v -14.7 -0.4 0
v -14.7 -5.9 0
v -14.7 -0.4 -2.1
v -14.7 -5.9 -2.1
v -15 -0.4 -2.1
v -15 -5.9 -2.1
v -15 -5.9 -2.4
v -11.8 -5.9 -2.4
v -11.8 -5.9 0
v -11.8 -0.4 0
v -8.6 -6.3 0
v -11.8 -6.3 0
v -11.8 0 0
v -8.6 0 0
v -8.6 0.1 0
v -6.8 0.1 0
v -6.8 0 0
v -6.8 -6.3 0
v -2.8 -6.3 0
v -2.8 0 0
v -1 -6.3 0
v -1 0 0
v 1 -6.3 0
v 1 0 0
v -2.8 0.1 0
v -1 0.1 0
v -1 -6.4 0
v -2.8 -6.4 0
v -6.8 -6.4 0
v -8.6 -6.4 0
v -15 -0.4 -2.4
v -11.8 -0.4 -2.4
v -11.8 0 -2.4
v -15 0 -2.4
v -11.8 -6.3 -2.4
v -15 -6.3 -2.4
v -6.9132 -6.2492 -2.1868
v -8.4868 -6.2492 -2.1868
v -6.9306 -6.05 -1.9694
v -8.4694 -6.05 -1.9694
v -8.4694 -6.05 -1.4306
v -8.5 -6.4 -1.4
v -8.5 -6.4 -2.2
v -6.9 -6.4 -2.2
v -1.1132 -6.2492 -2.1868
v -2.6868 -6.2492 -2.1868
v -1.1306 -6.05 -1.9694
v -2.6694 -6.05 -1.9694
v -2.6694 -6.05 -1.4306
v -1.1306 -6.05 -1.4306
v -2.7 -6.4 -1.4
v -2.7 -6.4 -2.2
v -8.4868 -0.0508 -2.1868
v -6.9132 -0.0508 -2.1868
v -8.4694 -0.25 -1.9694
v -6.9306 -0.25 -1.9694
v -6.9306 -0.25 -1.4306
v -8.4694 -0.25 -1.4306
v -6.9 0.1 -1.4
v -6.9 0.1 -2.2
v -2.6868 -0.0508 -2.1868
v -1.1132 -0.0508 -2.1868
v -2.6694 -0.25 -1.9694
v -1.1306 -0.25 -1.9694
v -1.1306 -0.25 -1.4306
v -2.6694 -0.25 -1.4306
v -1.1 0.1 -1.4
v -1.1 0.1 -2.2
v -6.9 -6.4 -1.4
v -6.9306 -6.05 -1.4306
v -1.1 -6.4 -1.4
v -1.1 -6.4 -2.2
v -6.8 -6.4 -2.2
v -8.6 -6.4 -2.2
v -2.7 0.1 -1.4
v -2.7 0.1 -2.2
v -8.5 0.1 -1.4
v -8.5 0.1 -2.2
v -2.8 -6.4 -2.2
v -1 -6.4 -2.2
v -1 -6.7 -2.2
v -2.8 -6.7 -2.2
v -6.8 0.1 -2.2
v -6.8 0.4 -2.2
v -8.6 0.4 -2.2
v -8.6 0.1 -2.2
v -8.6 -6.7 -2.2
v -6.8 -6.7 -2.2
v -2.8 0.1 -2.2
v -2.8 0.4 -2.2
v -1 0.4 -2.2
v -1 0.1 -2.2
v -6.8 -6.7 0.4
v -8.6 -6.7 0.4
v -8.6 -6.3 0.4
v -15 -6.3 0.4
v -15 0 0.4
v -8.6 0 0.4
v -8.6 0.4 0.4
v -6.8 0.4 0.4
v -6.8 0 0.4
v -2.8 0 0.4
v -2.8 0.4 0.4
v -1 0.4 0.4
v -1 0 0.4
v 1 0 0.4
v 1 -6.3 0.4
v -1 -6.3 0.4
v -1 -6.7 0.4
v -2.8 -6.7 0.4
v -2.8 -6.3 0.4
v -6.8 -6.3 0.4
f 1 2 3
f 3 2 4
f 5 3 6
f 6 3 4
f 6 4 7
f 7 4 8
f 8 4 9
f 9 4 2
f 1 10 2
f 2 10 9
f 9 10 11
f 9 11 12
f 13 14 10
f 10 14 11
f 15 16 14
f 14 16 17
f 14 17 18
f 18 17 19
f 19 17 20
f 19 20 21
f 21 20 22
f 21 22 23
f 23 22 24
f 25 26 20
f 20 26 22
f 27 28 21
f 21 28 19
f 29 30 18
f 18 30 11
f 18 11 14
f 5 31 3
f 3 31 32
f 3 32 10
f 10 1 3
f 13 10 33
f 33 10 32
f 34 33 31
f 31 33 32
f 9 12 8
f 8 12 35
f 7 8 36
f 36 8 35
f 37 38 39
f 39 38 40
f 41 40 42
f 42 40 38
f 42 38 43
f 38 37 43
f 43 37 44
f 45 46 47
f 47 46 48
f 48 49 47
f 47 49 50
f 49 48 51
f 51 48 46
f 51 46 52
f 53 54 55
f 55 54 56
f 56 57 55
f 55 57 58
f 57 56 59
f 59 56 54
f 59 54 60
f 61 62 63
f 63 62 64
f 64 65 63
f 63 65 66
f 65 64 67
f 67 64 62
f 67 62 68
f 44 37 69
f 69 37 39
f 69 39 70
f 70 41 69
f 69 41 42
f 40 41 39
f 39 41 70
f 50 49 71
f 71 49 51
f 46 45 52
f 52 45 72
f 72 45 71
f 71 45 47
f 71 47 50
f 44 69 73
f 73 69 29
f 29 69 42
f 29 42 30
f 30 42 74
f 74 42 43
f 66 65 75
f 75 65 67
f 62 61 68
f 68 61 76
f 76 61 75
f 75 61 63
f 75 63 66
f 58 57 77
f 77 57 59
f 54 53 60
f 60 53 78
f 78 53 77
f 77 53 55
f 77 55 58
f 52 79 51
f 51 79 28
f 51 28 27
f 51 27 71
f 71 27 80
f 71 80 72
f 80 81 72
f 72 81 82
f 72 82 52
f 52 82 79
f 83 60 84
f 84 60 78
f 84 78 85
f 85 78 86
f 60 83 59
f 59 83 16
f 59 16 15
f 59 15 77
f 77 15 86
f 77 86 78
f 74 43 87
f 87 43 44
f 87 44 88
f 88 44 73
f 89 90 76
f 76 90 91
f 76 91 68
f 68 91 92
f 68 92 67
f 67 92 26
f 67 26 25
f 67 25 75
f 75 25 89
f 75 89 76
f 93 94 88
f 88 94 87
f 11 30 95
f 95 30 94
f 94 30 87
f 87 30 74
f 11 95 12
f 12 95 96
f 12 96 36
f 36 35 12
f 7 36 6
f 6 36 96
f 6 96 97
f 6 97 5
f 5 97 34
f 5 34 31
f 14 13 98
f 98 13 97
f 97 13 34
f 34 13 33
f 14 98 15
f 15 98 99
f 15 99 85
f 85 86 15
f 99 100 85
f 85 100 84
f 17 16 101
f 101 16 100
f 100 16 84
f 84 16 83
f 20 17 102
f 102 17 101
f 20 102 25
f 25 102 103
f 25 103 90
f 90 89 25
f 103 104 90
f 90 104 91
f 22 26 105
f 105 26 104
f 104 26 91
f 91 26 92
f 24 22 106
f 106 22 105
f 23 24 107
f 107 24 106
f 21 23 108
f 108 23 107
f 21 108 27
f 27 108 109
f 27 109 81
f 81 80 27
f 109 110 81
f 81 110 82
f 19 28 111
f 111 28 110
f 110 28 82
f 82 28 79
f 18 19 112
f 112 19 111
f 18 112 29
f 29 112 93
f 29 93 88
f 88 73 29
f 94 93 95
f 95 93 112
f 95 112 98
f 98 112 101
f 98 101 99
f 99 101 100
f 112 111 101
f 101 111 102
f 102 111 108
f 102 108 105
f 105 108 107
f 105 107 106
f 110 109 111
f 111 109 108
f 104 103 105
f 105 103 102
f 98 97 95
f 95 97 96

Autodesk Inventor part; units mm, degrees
ref_plane "YZ Plane" through (0, 0, 0) normal (1, 0, 0) x (0, 1, 0)
ref_plane "XZ Plane" through (0, 0, 0) normal (0, 1, 0) x (-1, 0, 0)
sketch "Sketch1" plane through (0, 0, 0) normal (0, 0, 1) x (1, 0, 0)
  line L0 (1, -0.6) -> (1, -5.45) projected
  line L1 (-15, 0) -> (-11.6, 0)
  line L2 (-6.8, -6.3) -> (-8.6, -6.3) projected
  line L3 (-8.6, 0) -> (-6.8, 0) projected
  line L4 (-2.8, 0) -> (-1, 0) projected
  line L5 (-6.8, -6.3) -> (-8.6, -6.3) projected
  line L6 (-1, -6.3) -> (-2.8, -6.3) projected
  line L7 (-8.6, -6.3) -> (-6.8, -6.3)
  line L8 (-6.8, -6.3) -> (-6.8, -6.7)
  line L9 (-6.8, -6.7) -> (-8.6, -6.7)
  line L10 (-8.6, -6.7) -> (-8.6, -6.3)
  line L11 (-8.6, 0) -> (-6.8, 0)
  line L12 (-6.8, 0) -> (-6.8, 0.4)
  line L13 (-6.8, 0.4) -> (-8.6, 0.4)
  line L14 (-8.6, 0.4) -> (-8.6, 0)
  line L15 (-2.8, 0) -> (-1, 0)
  line L16 (-1, 0) -> (-1, 0.4)
  line L17 (-1, 0.4) -> (-2.8, 0.4)
  line L18 (-2.8, 0.4) -> (-2.8, 0)
  line L19 (-2.8, -6.3) -> (-1, -6.3)
  line L20 (-1, -6.3) -> (-1, -6.7)
  line L21 (-1, -6.7) -> (-2.8, -6.7)
  line L22 (-2.8, -6.7) -> (-2.8, -6.3)
  line L23 (-8.6, -5.9) -> (-8.6, -6.3) projected
  line L24 (-6.8, -5.9) -> (-6.8, -6.3) projected
  line L25 (-2.8, -5.9) -> (-2.8, -6.3) projected
  line L26 (-1, -5.9) -> (-1, -6.3) projected
  line L27 (1, -6.3) -> (-15, -6.3)
  line L28 (-15, -6.3) -> (-15, 0)
  line L29 (-15, 0) -> (1, 0)
  line L30 (1, 0) -> (1, -6.3)
  line L31 (-15, -1.7791) -> (-15, -4.5209) projected
  point P0 (0, 0)
  dimension "d2" = 0.4
extrude "Extrusion1" add sketch "Sketch1" along normal blind 0.4
sketch "Sketch2" plane through (0, 0, 0) normal (0, 0, -1) x (-1, 0, 0)
  line L0 (8.6, -6.7) -> (6.8, -6.7) projected
  line L1 (6.8, -6.7) -> (6.8, -6.3) projected
  line L2 (8.6, -6.7) -> (6.8, -6.7)
  line L3 (6.8, -6.7) -> (6.8, -6.4)
  line L4 (6.8, -6.4) -> (8.6, -6.4)
  line L5 (8.6, -6.4) -> (8.6, -6.7)
  line L6 (2.8, -6.3) -> (2.8, -6.7) projected
  line L7 (1, -6.7) -> (1, -6.3) projected
  line L8 (2.8, -6.7) -> (1, -6.7)
  line L9 (1, -6.7) -> (1, -6.4)
  line L10 (1, -6.4) -> (2.8, -6.4)
  line L11 (2.8, -6.4) -> (2.8, -6.7)
  line L12 (1, 0) -> (1, 0.4) projected
  line L13 (2.8, 0.4) -> (2.8, 0) projected
  line L14 (1, 0.4) -> (2.8, 0.4)
  line L15 (2.8, 0.4) -> (2.8, 0.1)
  line L16 (2.8, 0.1) -> (1, 0.1)
  line L17 (1, 0.1) -> (1, 0.4)
  line L18 (6.8, 0.4) -> (8.6, 0.4) projected
  line L19 (8.6, 0.4) -> (8.6, 0) projected
  line L20 (6.8, 0.4) -> (8.6, 0.4)
  line L21 (8.6, 0.4) -> (8.6, 0.1)
  line L22 (8.6, 0.1) -> (6.8, 0.1)
  line L23 (6.8, 0.1) -> (6.8, 0.4)
  line L24 (6.8, -6.3) -> (2.8, -6.3) projected
  line L25 (2.8, 0) -> (6.8, 0) projected
  point P0 (0, 0)
  dimension "d3" = 0.1
  dimension "d4" = 0.1
ref_plane "Work Plane1" through (-8.6, -0.4, -2.2) normal (0, 0, 1) x (1, 0, 0)
extrude "Extrusion2" add sketch "Sketch2" along normal up to surface (2.2 mm away)
sketch "Sketch3" plane through (-8.6, 0.1, 0) normal (0, -1, 0) x (1, 0, 0)
  line L0 (0.1, -1.4) -> (1.7, -1.4)
  line L1 (1.7, -1.4) -> (1.7, -2.2)
  line L2 (1.7, -2.2) -> (0.1, -2.2)
  line L3 (0.1, -2.2) -> (0.1, -1.4)
  line L4 (5.9, -1.4) -> (7.5, -1.4)
  line L5 (7.5, -1.4) -> (7.5, -2.2)
  line L6 (7.5, -2.2) -> (5.9, -2.2)
  line L7 (5.9, -2.2) -> (5.9, -1.4)
  line L8 (1.8, -2.2) -> (1.8, -1.2) projected
  line L9 (1.8, -1.2) -> (0, -1.2) projected
  line L10 (0, -2.2) -> (1.8, -2.2) projected
  line L11 (0, -1.2) -> (0, -2.2) projected
  line L12 (7.6, -2.2) -> (7.6, -1.2) projected
  line L13 (5.8, -2.2) -> (7.6, -2.2) projected
  line L14 (7.6, -1.2) -> (5.8, -1.2) projected
  line L15 (5.8, -1.2) -> (5.8, -2.2) projected
  line L16 (1.8, -2.2) -> (0, -2.2) projected
  line L17 (7.6, -2.2) -> (5.8, -2.2) projected
  point P0 (8.6, 0)
  point P1 (6.7, -1.2)
  dimension "d7" = 0.1
  dimension "d8" = 0.2
  dimension "d9" = 0.1
  dimension "d10" = 0.1
  dimension "d11" = 0.2
  dimension "d12" = 0.1
extrude "Extrusion3" add sketch "Sketch3" along normal blind 0.35 draft -5 contours L0 L1 L2 L3 | L4 L5 L6 L7
sketch "Sketch4" plane through (-2.8, -6.4, 0) normal (0, 1, 0) x (1, 0, 0)
  line L0 (-4.1, 2.2) -> (-5.7, 2.2) projected
  line L1 (-5.7, 2.2) -> (-5.7, 1.4) projected
  line L2 (-4.1, 1.4) -> (-4.1, 2.2) projected
  line L3 (-5.7, 1.4) -> (-4.1, 1.4) projected
  line L4 (0.1, 1.4) -> (1.7, 1.4) projected
  line L5 (0.1, 2.2) -> (0.1, 1.4) projected
  line L6 (1.7, 2.2) -> (0.1, 2.2) projected
  line L7 (1.7, 1.4) -> (1.7, 2.2) projected
  point P0 (2.8, 0)
extrude "Extrusion4" add sketch "Sketch4" along normal blind 0.35 draft -5
chamfer "Chamfer1" distance 0.2 angle 45 4 edges at (-1.9, -0.25, -2.1694) (-7.7, -0.25, -2.1694) (-1.9, -6.05, -2.1694) (-7.7, -6.05, -2.1694)
sketch "Sketch5" plane through (0, 0, 0) normal (0, 0, -1) x (-1, 0, 0)
  line L0 (15, -6.3) -> (11.8, -6.3)
  line L1 (11.8, -6.3) -> (11.8, -5.9)
  line L2 (11.8, -5.9) -> (15, -5.9)
  line L3 (15, -5.9) -> (15, -6.3)
  line L4 (8.6, 0) -> (15, 0) projected
  line L5 (15, 0) -> (11.8, 0)
  line L6 (11.8, 0) -> (11.8, -0.4)
  line L7 (11.8, -0.4) -> (15, -0.4)
  line L8 (15, -0.4) -> (15, 0)
  line L9 (11.6, 0) -> (11.6, -0.4) projected
  line L10 (11.6, -5.9) -> (11.6, -6.3) projected
  point P0 (0, 0)
  dimension "d20" = 0.2
  dimension "d21" = 0.2
extrude "Extrusion5" add sketch "Sketch5" along normal blind 2.4
sketch "Sketch6" plane through (0, 0, 0) normal (0, 0, -1) x (-1, 0, 0)
  line L0 (15, -0.4) -> (15, -5.9) projected
  line L1 (15, -5.9) -> (14.7, -5.9)
  line L2 (14.7, -5.9) -> (14.7, -0.4)
  line L3 (14.7, -0.4) -> (15, -0.4)
  line L4 (15, -0.4) -> (15, -5.9)
  line L5 (15, -0.4) -> (11.8, -0.4) projected
  point P0 (0, 0)
  dimension "d24" = 0.3
extrude "Extrusion6" add sketch "Sketch6" along normal blind 2.1
equation "\"d8\" = d11"
equation "\"d9\" = d7"
equation "\"d10\" = d7"
equation "\"d12\" = d7"
equation "\"d21\" = d20"
properties part number "np2_cap_open_top"
